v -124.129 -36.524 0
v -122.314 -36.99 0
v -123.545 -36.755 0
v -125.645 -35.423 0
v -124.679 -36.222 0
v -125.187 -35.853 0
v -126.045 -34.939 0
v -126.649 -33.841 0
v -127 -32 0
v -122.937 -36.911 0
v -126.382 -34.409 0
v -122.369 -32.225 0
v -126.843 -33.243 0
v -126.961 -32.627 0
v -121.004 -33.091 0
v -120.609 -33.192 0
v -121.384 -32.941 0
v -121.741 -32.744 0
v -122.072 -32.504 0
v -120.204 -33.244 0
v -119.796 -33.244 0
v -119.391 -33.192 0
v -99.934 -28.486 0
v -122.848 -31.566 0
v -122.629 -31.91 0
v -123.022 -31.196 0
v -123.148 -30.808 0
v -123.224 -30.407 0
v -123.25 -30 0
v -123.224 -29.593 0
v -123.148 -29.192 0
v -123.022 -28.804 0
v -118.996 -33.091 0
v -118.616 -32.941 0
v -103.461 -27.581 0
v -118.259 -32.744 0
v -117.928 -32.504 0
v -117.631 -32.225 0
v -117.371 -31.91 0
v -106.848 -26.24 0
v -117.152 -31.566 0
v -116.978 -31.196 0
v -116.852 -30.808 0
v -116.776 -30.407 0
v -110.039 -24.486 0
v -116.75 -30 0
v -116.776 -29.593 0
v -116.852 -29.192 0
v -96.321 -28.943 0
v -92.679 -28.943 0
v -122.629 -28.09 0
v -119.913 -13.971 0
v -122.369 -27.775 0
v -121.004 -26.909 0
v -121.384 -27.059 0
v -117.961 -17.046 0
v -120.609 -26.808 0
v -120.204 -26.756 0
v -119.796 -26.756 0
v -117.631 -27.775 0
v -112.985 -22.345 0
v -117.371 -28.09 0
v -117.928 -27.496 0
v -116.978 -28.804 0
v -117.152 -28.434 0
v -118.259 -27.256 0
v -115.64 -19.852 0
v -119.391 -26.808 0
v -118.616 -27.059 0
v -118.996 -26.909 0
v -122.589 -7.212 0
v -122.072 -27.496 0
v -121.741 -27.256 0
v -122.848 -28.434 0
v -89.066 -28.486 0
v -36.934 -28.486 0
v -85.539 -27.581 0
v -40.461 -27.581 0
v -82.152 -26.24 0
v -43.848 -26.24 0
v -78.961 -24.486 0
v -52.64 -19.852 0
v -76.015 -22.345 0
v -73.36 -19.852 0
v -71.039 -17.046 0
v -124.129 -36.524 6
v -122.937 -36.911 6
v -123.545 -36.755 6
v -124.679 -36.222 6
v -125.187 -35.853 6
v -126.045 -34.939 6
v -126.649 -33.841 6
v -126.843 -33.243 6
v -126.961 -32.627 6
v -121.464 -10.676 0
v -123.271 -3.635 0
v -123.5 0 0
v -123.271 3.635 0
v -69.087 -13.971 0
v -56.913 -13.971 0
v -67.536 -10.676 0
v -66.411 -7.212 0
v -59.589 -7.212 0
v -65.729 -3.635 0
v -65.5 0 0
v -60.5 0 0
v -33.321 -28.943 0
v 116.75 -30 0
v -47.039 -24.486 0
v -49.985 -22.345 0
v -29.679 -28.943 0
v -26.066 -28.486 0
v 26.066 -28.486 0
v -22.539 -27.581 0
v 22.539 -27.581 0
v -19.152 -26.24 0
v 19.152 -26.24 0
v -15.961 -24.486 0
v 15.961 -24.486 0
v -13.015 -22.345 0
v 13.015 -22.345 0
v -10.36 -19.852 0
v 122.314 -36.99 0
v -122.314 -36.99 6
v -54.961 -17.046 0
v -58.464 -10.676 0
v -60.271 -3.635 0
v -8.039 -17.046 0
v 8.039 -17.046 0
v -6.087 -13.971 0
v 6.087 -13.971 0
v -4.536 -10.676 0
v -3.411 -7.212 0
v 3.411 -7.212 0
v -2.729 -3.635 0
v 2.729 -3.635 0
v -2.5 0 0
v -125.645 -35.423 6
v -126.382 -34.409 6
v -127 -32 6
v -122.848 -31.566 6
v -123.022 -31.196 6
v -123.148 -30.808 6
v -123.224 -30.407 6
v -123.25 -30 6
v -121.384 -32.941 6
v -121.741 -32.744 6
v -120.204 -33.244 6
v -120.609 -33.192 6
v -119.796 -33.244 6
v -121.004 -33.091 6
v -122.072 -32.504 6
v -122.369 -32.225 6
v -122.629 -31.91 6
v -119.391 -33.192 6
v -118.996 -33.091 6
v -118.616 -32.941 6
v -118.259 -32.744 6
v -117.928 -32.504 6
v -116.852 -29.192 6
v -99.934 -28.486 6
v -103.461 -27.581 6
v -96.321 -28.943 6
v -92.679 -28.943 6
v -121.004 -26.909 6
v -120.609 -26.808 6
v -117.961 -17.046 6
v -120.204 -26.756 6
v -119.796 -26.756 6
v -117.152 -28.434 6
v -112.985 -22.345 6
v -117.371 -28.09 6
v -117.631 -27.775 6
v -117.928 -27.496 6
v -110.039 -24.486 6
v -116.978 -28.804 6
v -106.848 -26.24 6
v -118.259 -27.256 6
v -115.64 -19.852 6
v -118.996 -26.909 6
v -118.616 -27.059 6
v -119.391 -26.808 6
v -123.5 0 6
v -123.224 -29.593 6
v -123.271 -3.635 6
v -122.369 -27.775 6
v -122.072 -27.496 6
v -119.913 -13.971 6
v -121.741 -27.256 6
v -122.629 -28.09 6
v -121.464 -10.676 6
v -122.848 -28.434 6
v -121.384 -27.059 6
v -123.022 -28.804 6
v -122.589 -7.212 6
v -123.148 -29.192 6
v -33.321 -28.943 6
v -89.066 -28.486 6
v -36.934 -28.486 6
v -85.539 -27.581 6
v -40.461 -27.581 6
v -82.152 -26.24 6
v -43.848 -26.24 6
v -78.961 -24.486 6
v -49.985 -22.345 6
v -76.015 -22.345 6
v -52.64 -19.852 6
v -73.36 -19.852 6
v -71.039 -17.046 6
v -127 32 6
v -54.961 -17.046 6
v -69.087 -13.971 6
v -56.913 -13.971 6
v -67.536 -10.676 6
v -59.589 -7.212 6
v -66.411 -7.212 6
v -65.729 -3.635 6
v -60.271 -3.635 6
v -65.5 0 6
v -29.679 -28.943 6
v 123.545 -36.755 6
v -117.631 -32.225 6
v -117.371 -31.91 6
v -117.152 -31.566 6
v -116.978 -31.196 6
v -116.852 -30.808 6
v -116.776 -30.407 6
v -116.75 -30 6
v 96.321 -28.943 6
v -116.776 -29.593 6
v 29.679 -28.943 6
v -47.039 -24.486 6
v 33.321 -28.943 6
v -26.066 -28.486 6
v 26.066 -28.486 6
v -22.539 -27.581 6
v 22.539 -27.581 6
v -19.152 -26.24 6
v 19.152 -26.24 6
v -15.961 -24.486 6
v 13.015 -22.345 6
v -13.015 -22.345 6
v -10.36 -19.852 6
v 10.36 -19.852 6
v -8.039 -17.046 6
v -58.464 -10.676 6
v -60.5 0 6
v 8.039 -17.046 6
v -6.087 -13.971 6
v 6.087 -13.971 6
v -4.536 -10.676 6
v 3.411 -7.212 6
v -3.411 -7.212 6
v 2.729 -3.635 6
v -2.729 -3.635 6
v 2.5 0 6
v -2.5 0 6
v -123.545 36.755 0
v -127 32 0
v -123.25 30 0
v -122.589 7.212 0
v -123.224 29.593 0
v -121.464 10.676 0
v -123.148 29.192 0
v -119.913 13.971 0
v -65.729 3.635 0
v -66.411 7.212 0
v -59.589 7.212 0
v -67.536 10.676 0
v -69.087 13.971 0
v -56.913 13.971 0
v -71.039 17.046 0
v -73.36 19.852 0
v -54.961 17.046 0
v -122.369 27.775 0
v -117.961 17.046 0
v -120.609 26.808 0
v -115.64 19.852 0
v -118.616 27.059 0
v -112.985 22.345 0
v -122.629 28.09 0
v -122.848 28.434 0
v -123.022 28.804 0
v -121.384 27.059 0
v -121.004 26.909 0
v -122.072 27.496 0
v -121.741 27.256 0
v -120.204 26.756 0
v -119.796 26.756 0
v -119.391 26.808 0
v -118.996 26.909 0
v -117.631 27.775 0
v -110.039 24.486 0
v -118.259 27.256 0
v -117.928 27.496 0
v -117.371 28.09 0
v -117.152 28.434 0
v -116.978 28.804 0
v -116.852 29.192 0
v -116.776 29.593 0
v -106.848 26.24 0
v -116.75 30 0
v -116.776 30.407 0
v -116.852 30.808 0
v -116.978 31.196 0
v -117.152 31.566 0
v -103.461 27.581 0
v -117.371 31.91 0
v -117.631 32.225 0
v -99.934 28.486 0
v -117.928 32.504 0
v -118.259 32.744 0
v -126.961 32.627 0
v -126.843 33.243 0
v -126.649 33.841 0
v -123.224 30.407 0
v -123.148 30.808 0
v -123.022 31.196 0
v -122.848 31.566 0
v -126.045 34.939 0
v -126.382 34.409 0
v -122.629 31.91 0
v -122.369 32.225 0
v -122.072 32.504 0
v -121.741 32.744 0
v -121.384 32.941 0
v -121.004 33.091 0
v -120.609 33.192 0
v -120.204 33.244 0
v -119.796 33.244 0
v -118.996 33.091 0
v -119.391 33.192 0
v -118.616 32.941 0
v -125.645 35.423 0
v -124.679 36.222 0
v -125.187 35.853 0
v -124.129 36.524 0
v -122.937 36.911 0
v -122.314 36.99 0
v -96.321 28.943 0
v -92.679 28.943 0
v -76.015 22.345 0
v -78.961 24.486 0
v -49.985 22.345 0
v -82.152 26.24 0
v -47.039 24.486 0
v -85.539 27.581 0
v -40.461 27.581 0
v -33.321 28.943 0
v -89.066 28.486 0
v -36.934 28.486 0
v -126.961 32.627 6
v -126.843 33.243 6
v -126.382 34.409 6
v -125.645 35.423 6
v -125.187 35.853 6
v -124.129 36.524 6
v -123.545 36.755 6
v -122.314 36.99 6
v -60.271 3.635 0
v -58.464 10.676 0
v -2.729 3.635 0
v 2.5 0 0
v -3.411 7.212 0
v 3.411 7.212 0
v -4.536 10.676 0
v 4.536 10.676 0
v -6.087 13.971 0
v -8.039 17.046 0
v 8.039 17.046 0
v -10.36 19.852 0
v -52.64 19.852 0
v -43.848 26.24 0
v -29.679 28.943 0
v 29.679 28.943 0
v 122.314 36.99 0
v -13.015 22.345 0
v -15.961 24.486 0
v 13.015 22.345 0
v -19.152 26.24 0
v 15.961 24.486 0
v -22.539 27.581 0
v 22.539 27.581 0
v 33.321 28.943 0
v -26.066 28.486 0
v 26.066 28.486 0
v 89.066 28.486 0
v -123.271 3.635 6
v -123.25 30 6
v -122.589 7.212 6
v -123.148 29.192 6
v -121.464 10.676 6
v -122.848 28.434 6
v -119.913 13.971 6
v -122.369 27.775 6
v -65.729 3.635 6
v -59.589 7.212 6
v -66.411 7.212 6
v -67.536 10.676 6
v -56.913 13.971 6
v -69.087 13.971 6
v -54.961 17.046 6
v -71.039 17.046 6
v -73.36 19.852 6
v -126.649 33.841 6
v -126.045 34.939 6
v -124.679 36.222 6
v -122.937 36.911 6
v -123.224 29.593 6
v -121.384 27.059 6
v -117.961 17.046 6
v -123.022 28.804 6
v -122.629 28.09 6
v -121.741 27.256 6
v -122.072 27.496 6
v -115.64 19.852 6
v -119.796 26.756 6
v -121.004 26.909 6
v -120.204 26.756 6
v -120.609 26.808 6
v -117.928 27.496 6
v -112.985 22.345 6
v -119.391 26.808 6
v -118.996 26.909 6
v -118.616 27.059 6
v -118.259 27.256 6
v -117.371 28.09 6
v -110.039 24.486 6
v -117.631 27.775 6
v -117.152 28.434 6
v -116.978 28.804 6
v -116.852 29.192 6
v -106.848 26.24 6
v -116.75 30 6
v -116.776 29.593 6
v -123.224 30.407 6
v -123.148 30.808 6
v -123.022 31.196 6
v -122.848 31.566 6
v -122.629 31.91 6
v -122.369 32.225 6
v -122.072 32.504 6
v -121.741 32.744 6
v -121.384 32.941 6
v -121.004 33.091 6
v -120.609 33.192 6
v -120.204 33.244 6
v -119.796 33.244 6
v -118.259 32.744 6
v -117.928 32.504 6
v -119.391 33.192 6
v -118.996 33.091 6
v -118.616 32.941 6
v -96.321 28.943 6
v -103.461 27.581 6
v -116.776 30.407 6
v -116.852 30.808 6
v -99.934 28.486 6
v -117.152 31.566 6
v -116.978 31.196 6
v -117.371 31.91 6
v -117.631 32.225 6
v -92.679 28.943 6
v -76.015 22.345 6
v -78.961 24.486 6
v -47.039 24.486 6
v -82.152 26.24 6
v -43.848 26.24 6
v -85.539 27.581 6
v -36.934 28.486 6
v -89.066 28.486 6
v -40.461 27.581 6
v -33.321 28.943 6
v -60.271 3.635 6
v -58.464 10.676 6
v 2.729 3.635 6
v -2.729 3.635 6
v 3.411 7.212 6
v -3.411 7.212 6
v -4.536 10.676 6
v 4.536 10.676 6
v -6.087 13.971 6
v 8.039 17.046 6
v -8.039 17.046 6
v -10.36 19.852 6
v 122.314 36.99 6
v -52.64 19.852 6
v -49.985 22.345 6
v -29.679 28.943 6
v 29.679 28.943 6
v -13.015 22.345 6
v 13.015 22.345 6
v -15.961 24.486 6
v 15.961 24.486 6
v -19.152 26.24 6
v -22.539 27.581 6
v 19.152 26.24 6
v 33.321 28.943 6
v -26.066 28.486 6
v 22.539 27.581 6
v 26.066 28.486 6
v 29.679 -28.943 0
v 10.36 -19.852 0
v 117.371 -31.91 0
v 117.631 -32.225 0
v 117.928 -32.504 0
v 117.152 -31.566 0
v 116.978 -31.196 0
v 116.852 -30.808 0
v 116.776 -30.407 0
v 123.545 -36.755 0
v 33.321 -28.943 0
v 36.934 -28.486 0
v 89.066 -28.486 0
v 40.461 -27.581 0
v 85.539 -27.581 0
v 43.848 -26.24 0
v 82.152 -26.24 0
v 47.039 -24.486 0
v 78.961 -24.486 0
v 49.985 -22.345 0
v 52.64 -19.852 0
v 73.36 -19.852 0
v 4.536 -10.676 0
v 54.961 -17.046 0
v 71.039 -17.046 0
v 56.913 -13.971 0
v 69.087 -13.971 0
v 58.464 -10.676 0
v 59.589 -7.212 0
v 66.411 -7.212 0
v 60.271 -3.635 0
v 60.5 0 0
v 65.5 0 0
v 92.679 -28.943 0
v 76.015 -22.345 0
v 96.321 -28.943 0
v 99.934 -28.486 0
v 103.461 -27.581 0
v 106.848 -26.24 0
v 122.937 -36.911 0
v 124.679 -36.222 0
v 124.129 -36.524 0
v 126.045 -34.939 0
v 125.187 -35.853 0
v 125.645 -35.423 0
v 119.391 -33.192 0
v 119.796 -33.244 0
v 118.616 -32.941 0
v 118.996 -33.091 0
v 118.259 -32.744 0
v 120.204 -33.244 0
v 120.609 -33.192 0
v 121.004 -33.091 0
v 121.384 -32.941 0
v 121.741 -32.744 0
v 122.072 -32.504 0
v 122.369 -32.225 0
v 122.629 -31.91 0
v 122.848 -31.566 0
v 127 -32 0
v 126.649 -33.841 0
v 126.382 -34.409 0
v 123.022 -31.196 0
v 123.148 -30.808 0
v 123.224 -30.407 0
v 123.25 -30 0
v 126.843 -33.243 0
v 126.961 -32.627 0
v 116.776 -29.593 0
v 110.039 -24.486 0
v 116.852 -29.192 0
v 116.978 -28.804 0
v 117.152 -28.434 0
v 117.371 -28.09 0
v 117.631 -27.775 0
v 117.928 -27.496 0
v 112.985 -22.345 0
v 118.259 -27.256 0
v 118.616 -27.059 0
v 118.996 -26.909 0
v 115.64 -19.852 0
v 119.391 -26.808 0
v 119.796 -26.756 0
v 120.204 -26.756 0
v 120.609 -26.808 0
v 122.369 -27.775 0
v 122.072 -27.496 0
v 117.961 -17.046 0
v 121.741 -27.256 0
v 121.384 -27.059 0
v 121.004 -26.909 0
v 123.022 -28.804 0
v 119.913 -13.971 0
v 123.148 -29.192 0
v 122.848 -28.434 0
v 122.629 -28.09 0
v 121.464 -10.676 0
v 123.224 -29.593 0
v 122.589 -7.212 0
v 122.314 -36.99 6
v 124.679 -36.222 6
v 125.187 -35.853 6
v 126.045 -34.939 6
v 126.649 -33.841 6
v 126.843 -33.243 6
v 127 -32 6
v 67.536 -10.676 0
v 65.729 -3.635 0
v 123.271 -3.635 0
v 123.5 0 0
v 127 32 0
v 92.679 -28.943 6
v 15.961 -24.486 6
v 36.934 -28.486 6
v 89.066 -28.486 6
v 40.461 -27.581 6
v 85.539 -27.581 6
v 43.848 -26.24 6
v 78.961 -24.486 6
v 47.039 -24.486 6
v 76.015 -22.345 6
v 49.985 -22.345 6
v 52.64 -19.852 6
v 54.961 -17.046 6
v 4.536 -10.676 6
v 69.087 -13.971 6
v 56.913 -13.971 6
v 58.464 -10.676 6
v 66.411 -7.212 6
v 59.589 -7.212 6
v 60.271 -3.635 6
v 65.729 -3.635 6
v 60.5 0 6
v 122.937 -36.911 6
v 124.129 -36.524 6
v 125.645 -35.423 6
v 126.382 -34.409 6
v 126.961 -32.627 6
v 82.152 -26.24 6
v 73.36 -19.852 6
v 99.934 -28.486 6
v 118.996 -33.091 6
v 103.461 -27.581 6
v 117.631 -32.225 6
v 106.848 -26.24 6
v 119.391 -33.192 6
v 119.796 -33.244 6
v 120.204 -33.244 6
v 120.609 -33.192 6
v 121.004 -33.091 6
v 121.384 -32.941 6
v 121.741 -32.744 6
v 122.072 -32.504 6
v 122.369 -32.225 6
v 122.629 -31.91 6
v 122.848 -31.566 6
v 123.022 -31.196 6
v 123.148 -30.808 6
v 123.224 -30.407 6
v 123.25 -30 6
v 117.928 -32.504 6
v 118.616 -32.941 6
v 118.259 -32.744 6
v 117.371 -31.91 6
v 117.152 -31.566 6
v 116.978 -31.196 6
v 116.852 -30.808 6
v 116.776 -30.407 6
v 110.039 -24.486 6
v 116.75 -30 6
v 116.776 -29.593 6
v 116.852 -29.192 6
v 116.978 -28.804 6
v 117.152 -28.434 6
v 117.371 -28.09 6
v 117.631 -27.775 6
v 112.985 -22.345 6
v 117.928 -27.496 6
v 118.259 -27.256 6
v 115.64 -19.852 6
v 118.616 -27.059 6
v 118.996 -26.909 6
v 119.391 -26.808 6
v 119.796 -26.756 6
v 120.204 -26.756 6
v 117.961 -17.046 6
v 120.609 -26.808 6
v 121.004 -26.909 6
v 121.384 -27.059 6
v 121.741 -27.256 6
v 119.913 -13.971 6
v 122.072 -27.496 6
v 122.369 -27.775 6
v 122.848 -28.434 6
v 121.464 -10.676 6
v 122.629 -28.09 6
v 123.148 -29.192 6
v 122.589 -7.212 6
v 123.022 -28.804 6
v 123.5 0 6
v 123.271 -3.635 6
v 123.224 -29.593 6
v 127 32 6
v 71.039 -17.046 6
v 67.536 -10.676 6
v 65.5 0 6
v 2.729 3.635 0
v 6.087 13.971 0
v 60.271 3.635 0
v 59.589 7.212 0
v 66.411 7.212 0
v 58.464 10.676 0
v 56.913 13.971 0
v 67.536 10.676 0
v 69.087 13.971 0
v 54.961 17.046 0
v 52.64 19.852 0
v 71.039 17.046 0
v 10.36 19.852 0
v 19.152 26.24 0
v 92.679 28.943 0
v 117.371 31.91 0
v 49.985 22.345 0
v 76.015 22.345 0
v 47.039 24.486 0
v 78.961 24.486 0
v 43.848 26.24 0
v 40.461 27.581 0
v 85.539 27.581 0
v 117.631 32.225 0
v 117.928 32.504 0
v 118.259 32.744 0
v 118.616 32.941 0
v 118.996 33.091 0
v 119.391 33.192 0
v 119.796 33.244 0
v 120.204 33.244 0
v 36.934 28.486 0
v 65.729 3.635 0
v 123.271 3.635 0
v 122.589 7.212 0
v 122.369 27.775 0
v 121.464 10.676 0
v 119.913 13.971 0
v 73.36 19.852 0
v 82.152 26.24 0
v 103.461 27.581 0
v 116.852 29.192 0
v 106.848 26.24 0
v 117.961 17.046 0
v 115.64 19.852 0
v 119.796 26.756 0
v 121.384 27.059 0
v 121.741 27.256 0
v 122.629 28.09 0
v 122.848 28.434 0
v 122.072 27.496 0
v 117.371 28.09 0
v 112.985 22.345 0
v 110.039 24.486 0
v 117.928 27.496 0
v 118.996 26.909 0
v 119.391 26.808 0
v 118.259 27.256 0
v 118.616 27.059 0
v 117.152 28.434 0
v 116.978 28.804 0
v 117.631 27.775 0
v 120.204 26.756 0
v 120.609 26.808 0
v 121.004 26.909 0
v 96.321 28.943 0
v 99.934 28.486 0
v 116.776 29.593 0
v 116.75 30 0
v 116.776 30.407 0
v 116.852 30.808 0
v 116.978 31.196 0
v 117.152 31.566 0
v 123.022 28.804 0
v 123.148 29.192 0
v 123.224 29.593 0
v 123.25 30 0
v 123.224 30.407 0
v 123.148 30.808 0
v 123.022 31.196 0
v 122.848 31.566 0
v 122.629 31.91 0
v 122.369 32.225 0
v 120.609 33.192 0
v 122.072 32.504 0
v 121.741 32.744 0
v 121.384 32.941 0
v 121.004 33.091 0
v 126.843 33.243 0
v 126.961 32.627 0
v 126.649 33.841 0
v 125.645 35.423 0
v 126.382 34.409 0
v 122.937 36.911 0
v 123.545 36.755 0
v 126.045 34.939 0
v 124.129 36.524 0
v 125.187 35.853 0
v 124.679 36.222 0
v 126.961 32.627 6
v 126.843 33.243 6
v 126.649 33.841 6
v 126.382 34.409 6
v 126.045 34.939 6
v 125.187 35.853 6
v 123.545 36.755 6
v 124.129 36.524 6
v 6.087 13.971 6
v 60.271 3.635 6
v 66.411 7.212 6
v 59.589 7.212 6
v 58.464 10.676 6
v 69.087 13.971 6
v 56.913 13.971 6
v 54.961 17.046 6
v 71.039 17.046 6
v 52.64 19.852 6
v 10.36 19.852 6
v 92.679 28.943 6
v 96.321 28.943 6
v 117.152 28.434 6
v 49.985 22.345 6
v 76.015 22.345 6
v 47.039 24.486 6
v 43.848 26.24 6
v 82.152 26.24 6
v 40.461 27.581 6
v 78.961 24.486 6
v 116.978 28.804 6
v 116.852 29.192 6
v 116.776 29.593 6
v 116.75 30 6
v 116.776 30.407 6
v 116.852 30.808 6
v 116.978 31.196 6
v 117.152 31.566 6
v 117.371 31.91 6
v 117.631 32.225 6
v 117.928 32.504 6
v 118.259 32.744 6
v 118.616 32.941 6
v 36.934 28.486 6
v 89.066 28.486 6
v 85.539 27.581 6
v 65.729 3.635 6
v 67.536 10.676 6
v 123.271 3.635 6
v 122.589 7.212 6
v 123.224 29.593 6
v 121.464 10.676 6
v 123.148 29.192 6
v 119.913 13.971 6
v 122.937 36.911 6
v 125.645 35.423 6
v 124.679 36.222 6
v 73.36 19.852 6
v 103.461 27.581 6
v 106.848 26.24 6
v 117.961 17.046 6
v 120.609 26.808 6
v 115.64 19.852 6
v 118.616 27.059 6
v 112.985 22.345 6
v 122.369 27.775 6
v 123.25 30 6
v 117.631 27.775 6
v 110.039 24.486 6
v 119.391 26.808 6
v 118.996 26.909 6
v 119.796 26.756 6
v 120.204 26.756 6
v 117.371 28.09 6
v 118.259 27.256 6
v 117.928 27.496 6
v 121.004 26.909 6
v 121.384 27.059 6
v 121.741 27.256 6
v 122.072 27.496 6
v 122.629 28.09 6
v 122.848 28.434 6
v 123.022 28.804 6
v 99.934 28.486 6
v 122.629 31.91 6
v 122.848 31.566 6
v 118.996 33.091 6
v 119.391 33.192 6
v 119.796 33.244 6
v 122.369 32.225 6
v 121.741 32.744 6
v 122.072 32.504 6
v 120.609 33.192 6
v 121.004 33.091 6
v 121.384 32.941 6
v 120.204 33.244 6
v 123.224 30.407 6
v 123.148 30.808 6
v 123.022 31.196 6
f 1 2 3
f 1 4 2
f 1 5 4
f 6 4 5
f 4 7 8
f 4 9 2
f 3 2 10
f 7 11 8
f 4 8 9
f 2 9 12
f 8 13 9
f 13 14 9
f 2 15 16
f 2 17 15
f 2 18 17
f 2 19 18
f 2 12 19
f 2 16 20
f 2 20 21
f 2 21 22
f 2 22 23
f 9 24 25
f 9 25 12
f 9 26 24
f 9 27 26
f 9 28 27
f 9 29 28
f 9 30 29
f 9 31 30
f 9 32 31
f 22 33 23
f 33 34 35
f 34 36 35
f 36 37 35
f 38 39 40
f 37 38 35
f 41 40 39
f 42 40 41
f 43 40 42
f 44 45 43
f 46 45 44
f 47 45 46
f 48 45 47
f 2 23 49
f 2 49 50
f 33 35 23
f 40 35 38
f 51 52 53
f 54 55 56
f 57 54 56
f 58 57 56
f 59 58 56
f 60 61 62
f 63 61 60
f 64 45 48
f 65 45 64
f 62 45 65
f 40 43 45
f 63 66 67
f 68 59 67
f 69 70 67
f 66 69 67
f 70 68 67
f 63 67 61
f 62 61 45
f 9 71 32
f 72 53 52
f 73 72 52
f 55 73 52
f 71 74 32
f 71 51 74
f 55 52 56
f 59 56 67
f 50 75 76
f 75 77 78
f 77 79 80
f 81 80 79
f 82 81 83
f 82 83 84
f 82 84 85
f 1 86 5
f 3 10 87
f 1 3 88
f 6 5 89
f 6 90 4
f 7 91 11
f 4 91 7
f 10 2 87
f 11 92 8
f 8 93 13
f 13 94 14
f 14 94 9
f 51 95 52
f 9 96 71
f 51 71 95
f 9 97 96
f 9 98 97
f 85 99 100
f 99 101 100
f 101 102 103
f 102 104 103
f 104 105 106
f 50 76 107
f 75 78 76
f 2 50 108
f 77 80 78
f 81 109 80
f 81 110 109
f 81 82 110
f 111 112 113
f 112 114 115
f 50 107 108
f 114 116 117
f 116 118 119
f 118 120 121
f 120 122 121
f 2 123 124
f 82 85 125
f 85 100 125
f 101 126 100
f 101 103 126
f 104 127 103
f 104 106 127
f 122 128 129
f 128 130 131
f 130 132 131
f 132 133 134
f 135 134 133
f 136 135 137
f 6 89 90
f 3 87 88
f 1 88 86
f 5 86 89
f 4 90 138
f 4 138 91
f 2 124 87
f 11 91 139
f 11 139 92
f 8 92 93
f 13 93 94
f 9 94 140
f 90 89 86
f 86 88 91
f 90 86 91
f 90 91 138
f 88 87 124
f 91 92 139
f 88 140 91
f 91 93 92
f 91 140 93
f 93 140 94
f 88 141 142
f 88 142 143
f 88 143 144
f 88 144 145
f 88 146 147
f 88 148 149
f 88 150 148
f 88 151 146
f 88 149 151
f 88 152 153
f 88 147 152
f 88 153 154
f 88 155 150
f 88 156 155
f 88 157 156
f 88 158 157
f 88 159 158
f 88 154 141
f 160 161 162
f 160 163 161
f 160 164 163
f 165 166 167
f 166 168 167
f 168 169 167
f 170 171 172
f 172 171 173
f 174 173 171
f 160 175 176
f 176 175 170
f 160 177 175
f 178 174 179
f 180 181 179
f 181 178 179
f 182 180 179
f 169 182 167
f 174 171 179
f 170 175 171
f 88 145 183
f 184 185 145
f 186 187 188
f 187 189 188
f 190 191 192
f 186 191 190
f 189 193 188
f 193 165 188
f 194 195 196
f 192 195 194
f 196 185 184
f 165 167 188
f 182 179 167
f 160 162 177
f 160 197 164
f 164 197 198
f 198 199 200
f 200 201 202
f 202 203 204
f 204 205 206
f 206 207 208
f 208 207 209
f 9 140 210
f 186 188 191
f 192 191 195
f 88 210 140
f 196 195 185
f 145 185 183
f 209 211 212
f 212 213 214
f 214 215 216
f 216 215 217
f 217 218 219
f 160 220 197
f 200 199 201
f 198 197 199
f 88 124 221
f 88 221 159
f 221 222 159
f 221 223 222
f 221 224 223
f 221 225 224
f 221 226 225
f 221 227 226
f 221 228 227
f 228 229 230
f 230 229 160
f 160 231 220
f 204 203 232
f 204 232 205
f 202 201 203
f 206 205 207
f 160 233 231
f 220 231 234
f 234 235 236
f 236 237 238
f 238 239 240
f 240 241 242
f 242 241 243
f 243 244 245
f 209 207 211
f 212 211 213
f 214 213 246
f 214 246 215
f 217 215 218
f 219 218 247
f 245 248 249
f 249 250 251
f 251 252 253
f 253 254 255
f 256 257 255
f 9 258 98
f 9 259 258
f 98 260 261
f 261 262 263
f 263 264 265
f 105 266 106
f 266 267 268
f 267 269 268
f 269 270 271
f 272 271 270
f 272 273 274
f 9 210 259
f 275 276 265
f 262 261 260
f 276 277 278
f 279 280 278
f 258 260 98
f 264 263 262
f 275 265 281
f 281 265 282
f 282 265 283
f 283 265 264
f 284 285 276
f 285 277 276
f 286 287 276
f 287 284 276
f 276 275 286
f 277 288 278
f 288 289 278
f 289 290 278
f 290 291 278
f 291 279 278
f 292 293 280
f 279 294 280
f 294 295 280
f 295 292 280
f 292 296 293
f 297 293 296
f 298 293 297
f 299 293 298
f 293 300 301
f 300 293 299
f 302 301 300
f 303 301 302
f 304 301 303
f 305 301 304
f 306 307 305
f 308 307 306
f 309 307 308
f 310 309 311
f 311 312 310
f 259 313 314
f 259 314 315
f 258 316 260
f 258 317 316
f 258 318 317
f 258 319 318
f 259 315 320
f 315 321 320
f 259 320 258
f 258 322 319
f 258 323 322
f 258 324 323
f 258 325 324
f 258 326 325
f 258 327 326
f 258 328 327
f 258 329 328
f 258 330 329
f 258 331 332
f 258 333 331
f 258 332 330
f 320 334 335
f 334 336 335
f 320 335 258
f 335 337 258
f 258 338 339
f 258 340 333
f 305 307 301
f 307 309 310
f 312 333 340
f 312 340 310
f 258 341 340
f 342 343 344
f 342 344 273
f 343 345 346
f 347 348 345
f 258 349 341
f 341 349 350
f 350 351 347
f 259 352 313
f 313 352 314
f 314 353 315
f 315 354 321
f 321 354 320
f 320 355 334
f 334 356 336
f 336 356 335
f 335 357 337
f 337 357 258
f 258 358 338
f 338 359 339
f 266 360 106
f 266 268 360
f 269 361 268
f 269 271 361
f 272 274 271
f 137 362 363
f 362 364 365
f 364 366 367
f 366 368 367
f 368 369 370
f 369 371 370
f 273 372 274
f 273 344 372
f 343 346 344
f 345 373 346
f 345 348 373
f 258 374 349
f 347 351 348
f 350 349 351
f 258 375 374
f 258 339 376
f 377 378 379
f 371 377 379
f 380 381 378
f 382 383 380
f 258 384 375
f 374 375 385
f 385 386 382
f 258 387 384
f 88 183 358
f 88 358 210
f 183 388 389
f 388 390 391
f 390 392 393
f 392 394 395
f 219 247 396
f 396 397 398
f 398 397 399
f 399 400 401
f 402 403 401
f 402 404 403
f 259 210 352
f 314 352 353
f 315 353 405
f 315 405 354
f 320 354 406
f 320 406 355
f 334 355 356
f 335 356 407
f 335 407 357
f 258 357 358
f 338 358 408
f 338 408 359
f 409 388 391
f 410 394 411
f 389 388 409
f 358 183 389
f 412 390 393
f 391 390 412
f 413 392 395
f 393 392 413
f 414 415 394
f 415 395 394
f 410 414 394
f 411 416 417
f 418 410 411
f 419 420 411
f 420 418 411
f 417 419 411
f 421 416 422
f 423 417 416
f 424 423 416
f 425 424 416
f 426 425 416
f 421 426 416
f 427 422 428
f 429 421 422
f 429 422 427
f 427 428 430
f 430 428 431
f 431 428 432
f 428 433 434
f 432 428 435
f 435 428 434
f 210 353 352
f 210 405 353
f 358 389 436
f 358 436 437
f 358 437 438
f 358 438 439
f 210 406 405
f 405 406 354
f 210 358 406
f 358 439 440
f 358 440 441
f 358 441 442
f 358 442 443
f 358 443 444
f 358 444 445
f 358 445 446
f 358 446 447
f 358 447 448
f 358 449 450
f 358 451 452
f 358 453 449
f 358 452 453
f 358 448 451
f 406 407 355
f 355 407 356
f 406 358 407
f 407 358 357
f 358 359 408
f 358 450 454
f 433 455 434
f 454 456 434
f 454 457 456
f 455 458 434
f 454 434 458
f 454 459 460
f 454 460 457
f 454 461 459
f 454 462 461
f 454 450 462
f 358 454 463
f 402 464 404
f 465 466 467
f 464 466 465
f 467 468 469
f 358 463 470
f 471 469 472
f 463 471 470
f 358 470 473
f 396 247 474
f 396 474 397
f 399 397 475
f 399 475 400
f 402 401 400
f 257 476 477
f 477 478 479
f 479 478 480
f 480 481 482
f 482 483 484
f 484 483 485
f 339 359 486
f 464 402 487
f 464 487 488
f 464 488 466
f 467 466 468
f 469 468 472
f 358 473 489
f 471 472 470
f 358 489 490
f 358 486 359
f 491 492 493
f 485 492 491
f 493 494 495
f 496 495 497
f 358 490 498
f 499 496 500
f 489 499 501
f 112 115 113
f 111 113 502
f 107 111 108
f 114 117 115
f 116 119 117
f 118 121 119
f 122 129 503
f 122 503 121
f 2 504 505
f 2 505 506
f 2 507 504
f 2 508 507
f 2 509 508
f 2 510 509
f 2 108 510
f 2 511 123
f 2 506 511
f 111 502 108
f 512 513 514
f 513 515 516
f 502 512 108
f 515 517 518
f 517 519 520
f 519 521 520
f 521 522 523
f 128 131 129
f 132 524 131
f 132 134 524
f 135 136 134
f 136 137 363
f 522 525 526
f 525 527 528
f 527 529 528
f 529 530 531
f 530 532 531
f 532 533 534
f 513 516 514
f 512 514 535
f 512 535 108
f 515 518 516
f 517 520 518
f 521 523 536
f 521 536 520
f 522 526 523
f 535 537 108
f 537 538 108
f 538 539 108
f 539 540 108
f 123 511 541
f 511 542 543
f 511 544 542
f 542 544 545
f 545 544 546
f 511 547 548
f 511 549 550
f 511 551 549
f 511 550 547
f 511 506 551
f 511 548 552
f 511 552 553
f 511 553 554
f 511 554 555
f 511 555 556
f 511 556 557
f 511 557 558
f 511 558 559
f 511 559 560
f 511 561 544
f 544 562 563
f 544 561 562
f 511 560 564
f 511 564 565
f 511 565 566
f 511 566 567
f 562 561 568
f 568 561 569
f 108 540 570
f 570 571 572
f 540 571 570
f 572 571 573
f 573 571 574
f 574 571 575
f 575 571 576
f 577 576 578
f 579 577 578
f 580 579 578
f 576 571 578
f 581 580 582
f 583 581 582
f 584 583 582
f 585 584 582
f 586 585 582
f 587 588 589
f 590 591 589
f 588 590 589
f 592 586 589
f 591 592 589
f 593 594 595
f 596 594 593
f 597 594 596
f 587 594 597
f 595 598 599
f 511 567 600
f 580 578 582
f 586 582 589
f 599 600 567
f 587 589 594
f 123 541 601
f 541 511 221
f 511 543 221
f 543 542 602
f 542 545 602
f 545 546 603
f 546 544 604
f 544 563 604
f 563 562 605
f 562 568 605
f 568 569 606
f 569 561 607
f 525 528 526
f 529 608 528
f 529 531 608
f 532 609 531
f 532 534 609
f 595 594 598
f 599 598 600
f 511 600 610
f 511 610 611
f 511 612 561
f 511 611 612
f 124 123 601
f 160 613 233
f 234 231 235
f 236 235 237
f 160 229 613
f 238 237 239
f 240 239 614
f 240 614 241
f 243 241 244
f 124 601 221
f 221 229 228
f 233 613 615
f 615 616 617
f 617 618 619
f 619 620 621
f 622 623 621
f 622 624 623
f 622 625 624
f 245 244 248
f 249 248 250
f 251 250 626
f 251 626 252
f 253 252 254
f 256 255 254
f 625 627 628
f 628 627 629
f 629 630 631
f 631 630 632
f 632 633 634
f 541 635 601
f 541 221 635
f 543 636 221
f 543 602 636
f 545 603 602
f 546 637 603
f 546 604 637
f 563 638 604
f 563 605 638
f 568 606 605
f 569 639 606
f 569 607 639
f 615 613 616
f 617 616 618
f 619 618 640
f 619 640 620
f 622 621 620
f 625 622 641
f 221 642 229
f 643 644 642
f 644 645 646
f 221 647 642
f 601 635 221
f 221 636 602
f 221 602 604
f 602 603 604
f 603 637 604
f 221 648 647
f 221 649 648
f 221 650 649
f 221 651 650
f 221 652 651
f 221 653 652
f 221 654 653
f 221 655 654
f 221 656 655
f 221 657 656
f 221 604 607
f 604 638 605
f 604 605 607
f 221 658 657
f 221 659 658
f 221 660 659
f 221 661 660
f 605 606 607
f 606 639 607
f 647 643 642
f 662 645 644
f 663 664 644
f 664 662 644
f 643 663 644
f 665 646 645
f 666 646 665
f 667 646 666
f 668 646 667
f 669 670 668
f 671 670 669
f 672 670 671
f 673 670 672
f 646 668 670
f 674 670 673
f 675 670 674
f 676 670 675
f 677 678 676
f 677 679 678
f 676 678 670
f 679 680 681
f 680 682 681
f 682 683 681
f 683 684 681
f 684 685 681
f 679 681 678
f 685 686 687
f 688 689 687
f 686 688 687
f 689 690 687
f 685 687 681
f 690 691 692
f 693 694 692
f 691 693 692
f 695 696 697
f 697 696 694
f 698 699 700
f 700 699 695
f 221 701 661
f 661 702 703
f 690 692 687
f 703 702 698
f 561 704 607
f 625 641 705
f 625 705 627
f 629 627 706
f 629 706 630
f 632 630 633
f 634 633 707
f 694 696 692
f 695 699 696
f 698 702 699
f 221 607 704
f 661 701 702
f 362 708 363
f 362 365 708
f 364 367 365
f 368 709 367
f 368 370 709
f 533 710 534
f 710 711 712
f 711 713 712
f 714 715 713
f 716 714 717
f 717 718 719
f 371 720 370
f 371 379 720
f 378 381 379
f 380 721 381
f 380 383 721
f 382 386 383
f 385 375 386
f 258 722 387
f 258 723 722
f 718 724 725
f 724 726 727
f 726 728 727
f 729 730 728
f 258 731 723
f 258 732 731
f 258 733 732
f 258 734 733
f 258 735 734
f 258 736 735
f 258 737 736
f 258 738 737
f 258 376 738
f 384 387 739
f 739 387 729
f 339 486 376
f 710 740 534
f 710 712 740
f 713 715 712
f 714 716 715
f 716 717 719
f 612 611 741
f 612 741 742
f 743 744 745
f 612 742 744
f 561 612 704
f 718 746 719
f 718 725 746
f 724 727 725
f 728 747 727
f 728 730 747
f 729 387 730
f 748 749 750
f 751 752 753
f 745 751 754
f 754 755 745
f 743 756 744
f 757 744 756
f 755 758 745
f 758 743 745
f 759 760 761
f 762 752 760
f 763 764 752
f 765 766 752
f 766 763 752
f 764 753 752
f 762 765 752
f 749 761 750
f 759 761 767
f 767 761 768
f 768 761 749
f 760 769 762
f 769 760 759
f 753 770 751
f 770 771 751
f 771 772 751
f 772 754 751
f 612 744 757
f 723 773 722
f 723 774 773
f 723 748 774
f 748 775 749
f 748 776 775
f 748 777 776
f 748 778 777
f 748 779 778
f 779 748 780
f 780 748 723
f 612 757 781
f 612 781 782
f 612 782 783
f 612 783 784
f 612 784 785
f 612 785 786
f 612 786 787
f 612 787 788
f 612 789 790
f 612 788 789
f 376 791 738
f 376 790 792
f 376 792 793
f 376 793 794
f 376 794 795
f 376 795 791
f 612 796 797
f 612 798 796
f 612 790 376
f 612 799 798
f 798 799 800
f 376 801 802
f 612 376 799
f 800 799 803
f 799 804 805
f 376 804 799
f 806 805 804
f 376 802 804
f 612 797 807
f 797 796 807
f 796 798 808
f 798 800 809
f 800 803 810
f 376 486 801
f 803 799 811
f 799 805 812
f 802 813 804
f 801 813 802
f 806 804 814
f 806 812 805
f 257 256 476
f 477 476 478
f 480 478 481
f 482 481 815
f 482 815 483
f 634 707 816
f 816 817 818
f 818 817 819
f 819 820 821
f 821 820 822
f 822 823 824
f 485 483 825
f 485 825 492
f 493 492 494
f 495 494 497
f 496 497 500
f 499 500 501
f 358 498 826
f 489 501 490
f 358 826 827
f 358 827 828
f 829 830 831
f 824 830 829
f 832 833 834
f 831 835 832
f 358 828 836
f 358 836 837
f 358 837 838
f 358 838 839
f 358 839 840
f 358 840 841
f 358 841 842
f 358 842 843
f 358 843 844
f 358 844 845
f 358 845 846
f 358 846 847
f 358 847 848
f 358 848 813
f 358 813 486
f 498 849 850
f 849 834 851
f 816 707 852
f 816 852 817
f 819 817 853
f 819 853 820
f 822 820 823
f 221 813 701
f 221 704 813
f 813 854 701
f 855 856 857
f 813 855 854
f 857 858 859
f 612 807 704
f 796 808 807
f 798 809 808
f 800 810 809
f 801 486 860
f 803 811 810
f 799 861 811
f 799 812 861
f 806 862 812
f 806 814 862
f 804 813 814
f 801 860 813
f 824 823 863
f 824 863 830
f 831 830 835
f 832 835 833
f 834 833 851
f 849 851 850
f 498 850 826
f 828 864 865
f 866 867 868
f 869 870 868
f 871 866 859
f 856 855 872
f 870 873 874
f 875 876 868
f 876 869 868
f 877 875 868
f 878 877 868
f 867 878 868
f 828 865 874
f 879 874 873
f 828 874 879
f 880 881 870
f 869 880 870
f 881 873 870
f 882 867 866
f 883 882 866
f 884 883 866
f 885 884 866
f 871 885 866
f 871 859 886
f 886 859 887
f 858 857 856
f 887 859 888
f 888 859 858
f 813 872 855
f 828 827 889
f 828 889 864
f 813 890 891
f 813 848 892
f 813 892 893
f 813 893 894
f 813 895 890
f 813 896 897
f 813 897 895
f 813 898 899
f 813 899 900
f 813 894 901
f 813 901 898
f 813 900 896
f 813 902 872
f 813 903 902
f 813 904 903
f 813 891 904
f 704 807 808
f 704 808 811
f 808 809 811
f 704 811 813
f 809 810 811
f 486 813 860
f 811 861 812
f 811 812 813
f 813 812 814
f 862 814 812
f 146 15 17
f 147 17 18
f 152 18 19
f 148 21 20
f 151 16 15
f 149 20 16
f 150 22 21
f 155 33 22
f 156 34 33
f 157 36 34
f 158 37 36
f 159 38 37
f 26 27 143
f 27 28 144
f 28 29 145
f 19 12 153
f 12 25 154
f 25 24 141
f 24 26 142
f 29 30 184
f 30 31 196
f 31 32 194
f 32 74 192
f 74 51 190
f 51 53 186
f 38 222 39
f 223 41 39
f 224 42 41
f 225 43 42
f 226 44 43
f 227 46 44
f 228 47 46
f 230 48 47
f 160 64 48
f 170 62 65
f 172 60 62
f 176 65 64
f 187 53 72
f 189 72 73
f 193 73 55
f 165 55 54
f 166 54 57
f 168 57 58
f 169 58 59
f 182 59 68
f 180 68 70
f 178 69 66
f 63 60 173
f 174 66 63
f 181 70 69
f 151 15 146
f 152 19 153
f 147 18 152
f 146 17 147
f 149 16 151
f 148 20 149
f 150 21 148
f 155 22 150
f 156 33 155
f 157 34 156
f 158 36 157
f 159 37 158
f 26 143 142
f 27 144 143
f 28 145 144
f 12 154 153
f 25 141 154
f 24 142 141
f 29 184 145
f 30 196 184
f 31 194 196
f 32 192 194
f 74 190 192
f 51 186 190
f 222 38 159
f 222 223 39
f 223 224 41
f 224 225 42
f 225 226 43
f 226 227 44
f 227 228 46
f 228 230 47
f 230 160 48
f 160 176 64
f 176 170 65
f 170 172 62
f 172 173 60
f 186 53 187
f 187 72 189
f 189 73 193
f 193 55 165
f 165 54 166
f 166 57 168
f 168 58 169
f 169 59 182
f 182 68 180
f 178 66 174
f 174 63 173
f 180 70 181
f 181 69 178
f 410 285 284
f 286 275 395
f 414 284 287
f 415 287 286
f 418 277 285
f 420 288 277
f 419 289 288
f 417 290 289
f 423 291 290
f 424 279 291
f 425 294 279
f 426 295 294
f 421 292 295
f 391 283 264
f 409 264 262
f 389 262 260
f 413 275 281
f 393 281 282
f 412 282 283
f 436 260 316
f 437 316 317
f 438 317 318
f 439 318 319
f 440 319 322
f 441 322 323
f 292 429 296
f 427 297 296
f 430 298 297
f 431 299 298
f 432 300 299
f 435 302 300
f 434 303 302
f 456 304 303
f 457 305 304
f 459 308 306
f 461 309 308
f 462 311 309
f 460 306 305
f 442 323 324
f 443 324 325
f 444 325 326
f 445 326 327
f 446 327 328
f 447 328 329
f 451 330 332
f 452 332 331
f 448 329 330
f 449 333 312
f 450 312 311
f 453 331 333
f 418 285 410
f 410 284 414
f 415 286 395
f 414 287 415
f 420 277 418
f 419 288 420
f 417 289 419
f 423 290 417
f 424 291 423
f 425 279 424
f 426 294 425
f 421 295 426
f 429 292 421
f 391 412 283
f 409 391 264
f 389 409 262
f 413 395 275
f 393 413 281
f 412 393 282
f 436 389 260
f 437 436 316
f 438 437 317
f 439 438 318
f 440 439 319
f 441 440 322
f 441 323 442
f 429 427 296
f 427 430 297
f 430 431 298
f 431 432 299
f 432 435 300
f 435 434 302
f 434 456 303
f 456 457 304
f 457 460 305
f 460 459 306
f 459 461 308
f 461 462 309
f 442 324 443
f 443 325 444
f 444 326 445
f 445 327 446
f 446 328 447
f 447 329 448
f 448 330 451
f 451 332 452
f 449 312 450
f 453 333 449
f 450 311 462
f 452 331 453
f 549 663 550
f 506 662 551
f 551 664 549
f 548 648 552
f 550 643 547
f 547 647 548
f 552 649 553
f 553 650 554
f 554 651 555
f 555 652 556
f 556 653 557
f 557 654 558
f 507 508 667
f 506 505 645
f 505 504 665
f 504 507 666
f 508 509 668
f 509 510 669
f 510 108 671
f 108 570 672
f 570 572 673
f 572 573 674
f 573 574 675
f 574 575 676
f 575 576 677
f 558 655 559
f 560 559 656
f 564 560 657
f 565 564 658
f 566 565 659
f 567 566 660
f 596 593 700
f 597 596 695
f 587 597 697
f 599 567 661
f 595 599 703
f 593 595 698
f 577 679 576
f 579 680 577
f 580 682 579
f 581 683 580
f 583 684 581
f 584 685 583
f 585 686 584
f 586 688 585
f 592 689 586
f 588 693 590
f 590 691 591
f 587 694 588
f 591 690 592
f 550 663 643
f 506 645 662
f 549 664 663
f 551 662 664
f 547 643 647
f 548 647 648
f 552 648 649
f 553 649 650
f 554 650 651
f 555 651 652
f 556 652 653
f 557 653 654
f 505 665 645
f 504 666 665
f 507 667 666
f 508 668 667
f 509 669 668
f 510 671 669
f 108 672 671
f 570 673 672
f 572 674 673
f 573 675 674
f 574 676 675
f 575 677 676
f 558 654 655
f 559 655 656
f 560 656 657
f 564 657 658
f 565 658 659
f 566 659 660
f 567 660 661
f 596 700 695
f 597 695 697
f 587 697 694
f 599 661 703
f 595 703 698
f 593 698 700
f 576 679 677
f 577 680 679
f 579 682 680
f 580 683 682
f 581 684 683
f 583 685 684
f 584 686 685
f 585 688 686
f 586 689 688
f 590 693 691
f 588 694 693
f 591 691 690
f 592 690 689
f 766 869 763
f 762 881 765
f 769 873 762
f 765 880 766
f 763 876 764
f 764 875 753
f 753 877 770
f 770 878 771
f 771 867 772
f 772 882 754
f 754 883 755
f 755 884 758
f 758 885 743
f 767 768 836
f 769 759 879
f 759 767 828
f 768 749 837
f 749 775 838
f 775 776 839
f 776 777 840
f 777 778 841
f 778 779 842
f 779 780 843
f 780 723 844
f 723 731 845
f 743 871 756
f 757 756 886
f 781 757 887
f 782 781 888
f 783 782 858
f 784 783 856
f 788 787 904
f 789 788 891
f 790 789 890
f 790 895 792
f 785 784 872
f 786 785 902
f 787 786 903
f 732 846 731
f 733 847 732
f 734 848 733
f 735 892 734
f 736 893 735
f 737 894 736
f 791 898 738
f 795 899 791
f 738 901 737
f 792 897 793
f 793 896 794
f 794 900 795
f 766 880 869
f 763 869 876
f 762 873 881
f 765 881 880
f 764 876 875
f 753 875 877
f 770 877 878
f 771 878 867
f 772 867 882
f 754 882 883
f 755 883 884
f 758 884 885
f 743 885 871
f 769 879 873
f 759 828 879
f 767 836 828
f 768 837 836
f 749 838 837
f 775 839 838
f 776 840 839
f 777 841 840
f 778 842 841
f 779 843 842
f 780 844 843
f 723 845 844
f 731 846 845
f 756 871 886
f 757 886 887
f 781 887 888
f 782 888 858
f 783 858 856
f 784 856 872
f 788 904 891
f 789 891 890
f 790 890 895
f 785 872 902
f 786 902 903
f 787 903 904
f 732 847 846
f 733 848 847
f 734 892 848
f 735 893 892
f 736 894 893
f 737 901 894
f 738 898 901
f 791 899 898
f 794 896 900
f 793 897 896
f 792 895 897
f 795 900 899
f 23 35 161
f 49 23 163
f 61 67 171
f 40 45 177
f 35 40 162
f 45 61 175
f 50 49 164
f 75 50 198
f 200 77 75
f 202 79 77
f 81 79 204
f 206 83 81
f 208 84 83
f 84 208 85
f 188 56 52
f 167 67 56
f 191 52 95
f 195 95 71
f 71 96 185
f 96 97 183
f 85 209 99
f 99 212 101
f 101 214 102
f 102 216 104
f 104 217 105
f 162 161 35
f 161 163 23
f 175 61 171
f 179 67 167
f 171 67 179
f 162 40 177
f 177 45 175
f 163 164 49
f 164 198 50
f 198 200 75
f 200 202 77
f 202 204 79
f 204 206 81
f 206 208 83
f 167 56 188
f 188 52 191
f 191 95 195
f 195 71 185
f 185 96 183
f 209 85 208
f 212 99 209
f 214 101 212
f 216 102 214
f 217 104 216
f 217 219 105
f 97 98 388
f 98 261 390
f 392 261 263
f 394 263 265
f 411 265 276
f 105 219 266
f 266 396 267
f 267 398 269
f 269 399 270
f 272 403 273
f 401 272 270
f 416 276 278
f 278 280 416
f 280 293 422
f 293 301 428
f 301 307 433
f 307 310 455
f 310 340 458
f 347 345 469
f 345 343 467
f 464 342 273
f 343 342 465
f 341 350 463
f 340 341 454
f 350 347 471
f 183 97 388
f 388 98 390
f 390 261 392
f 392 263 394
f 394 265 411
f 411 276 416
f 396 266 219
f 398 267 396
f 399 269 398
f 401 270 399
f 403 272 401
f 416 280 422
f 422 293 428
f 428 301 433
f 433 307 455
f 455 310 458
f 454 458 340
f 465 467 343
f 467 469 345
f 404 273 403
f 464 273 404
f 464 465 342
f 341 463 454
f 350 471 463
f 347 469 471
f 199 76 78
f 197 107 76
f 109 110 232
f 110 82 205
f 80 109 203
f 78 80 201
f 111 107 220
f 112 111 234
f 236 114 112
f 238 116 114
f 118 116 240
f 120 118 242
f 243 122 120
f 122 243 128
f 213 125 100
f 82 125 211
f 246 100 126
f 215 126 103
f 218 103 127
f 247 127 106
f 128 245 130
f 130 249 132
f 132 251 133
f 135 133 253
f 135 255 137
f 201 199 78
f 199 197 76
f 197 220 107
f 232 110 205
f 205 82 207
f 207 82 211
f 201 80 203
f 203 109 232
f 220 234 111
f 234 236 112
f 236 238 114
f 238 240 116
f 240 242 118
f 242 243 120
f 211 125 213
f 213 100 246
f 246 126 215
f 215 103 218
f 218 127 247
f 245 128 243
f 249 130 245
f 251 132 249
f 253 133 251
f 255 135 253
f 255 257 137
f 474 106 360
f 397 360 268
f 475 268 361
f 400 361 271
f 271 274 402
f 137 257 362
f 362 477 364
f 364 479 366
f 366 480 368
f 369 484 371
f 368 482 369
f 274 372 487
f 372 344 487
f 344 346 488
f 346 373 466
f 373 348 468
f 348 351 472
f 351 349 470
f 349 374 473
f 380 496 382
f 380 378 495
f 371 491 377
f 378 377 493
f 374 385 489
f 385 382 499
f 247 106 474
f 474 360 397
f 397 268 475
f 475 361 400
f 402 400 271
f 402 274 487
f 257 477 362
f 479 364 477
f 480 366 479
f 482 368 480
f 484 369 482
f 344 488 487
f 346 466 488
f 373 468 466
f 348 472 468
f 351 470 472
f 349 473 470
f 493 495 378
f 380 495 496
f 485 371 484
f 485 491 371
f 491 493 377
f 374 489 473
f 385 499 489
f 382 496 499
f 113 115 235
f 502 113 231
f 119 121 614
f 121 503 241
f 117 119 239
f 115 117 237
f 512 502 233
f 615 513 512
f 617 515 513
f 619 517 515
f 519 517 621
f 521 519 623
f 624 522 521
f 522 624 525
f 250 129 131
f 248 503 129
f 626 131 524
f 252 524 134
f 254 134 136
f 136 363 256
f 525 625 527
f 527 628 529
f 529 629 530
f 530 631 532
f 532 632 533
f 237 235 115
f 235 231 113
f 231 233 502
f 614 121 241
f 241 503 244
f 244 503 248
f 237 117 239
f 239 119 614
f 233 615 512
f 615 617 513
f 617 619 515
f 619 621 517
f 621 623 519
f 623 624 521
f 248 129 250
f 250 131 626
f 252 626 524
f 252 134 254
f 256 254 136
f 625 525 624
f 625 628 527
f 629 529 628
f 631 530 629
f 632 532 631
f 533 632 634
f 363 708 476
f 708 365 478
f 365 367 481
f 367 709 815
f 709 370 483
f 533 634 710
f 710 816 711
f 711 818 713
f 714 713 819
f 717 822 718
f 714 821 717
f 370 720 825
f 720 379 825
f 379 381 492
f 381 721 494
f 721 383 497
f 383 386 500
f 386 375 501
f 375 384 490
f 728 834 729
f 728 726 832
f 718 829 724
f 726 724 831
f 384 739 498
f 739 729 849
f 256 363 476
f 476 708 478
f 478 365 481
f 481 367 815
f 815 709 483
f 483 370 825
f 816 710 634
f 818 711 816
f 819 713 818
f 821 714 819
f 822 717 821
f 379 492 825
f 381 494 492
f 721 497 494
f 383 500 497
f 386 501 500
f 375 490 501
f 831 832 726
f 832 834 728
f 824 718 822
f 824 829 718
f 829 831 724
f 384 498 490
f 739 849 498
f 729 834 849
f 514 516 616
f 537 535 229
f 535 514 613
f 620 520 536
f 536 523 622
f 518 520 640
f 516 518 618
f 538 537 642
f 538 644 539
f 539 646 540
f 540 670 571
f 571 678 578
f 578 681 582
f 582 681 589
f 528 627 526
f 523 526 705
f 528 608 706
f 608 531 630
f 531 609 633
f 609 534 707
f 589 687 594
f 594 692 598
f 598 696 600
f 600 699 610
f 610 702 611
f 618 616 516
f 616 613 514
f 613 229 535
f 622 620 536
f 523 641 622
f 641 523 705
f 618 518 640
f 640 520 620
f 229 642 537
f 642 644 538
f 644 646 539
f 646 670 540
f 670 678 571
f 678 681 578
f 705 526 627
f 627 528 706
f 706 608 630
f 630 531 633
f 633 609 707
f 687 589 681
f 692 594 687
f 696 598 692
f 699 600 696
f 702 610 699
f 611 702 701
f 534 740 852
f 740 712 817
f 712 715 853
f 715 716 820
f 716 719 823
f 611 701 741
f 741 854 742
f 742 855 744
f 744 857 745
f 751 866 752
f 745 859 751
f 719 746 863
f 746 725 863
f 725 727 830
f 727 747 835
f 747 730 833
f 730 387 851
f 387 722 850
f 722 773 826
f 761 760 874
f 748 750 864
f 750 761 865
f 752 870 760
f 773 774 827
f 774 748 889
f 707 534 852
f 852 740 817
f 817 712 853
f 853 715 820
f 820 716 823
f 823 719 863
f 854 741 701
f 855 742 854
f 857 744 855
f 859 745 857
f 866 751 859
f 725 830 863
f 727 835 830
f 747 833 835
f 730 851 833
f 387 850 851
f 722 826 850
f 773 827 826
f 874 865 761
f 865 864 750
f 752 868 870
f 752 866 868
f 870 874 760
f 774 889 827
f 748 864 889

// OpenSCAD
$fn = 50;

difference() {
	union() {
		hull() {
			translate(v = [-122.0, 32.0, 0]) {
				cylinder(h = 6, r = 5);
			}
			translate(v = [122.0, 32.0, 0]) {
				cylinder(h = 6, r = 5);
			}
			translate(v = [-122.0, -32.0, 0]) {
				cylinder(h = 6, r = 5);
			}
			translate(v = [122.0, -32.0, 0]) {
				cylinder(h = 6, r = 5);
			}
		}
	}
	union() {
		translate(v = [-120.0, -30.0, -100.0]) {
			cylinder(h = 200, r = 3.25);
		}
		translate(v = [-120.0, 30.0, -100.0]) {
			cylinder(h = 200, r = 3.25);
		}
		translate(v = [120.0, -30.0, -100.0]) {
			cylinder(h = 200, r = 3.25);
		}
		translate(v = [120.0, 30.0, -100.0]) {
			cylinder(h = 200, r = 3.25);
		}
		translate(v = [-120.0, -30.0, -100.0]) {
			cylinder(h = 200, r = 1.8);
		}
		translate(v = [-120.0, 30.0, -100.0]) {
			cylinder(h = 200, r = 1.8);
		}
		translate(v = [120.0, -30.0, -100.0]) {
			cylinder(h = 200, r = 1.8);
		}
		translate(v = [120.0, 30.0, -100.0]) {
			cylinder(h = 200, r = 1.8);
		}
		translate(v = [-94.5, 0, 0.0]) {
			cylinder(h = 6, r = 29.0);
		}
		translate(v = [-31.5, 0, 0.0]) {
			cylinder(h = 6, r = 29.0);
		}
		translate(v = [31.5, 0, 0.0]) {
			cylinder(h = 6, r = 29.0);
		}
		translate(v = [94.5, 0, 0.0]) {
			cylinder(h = 6, r = 29.0);
		}
	}
}
